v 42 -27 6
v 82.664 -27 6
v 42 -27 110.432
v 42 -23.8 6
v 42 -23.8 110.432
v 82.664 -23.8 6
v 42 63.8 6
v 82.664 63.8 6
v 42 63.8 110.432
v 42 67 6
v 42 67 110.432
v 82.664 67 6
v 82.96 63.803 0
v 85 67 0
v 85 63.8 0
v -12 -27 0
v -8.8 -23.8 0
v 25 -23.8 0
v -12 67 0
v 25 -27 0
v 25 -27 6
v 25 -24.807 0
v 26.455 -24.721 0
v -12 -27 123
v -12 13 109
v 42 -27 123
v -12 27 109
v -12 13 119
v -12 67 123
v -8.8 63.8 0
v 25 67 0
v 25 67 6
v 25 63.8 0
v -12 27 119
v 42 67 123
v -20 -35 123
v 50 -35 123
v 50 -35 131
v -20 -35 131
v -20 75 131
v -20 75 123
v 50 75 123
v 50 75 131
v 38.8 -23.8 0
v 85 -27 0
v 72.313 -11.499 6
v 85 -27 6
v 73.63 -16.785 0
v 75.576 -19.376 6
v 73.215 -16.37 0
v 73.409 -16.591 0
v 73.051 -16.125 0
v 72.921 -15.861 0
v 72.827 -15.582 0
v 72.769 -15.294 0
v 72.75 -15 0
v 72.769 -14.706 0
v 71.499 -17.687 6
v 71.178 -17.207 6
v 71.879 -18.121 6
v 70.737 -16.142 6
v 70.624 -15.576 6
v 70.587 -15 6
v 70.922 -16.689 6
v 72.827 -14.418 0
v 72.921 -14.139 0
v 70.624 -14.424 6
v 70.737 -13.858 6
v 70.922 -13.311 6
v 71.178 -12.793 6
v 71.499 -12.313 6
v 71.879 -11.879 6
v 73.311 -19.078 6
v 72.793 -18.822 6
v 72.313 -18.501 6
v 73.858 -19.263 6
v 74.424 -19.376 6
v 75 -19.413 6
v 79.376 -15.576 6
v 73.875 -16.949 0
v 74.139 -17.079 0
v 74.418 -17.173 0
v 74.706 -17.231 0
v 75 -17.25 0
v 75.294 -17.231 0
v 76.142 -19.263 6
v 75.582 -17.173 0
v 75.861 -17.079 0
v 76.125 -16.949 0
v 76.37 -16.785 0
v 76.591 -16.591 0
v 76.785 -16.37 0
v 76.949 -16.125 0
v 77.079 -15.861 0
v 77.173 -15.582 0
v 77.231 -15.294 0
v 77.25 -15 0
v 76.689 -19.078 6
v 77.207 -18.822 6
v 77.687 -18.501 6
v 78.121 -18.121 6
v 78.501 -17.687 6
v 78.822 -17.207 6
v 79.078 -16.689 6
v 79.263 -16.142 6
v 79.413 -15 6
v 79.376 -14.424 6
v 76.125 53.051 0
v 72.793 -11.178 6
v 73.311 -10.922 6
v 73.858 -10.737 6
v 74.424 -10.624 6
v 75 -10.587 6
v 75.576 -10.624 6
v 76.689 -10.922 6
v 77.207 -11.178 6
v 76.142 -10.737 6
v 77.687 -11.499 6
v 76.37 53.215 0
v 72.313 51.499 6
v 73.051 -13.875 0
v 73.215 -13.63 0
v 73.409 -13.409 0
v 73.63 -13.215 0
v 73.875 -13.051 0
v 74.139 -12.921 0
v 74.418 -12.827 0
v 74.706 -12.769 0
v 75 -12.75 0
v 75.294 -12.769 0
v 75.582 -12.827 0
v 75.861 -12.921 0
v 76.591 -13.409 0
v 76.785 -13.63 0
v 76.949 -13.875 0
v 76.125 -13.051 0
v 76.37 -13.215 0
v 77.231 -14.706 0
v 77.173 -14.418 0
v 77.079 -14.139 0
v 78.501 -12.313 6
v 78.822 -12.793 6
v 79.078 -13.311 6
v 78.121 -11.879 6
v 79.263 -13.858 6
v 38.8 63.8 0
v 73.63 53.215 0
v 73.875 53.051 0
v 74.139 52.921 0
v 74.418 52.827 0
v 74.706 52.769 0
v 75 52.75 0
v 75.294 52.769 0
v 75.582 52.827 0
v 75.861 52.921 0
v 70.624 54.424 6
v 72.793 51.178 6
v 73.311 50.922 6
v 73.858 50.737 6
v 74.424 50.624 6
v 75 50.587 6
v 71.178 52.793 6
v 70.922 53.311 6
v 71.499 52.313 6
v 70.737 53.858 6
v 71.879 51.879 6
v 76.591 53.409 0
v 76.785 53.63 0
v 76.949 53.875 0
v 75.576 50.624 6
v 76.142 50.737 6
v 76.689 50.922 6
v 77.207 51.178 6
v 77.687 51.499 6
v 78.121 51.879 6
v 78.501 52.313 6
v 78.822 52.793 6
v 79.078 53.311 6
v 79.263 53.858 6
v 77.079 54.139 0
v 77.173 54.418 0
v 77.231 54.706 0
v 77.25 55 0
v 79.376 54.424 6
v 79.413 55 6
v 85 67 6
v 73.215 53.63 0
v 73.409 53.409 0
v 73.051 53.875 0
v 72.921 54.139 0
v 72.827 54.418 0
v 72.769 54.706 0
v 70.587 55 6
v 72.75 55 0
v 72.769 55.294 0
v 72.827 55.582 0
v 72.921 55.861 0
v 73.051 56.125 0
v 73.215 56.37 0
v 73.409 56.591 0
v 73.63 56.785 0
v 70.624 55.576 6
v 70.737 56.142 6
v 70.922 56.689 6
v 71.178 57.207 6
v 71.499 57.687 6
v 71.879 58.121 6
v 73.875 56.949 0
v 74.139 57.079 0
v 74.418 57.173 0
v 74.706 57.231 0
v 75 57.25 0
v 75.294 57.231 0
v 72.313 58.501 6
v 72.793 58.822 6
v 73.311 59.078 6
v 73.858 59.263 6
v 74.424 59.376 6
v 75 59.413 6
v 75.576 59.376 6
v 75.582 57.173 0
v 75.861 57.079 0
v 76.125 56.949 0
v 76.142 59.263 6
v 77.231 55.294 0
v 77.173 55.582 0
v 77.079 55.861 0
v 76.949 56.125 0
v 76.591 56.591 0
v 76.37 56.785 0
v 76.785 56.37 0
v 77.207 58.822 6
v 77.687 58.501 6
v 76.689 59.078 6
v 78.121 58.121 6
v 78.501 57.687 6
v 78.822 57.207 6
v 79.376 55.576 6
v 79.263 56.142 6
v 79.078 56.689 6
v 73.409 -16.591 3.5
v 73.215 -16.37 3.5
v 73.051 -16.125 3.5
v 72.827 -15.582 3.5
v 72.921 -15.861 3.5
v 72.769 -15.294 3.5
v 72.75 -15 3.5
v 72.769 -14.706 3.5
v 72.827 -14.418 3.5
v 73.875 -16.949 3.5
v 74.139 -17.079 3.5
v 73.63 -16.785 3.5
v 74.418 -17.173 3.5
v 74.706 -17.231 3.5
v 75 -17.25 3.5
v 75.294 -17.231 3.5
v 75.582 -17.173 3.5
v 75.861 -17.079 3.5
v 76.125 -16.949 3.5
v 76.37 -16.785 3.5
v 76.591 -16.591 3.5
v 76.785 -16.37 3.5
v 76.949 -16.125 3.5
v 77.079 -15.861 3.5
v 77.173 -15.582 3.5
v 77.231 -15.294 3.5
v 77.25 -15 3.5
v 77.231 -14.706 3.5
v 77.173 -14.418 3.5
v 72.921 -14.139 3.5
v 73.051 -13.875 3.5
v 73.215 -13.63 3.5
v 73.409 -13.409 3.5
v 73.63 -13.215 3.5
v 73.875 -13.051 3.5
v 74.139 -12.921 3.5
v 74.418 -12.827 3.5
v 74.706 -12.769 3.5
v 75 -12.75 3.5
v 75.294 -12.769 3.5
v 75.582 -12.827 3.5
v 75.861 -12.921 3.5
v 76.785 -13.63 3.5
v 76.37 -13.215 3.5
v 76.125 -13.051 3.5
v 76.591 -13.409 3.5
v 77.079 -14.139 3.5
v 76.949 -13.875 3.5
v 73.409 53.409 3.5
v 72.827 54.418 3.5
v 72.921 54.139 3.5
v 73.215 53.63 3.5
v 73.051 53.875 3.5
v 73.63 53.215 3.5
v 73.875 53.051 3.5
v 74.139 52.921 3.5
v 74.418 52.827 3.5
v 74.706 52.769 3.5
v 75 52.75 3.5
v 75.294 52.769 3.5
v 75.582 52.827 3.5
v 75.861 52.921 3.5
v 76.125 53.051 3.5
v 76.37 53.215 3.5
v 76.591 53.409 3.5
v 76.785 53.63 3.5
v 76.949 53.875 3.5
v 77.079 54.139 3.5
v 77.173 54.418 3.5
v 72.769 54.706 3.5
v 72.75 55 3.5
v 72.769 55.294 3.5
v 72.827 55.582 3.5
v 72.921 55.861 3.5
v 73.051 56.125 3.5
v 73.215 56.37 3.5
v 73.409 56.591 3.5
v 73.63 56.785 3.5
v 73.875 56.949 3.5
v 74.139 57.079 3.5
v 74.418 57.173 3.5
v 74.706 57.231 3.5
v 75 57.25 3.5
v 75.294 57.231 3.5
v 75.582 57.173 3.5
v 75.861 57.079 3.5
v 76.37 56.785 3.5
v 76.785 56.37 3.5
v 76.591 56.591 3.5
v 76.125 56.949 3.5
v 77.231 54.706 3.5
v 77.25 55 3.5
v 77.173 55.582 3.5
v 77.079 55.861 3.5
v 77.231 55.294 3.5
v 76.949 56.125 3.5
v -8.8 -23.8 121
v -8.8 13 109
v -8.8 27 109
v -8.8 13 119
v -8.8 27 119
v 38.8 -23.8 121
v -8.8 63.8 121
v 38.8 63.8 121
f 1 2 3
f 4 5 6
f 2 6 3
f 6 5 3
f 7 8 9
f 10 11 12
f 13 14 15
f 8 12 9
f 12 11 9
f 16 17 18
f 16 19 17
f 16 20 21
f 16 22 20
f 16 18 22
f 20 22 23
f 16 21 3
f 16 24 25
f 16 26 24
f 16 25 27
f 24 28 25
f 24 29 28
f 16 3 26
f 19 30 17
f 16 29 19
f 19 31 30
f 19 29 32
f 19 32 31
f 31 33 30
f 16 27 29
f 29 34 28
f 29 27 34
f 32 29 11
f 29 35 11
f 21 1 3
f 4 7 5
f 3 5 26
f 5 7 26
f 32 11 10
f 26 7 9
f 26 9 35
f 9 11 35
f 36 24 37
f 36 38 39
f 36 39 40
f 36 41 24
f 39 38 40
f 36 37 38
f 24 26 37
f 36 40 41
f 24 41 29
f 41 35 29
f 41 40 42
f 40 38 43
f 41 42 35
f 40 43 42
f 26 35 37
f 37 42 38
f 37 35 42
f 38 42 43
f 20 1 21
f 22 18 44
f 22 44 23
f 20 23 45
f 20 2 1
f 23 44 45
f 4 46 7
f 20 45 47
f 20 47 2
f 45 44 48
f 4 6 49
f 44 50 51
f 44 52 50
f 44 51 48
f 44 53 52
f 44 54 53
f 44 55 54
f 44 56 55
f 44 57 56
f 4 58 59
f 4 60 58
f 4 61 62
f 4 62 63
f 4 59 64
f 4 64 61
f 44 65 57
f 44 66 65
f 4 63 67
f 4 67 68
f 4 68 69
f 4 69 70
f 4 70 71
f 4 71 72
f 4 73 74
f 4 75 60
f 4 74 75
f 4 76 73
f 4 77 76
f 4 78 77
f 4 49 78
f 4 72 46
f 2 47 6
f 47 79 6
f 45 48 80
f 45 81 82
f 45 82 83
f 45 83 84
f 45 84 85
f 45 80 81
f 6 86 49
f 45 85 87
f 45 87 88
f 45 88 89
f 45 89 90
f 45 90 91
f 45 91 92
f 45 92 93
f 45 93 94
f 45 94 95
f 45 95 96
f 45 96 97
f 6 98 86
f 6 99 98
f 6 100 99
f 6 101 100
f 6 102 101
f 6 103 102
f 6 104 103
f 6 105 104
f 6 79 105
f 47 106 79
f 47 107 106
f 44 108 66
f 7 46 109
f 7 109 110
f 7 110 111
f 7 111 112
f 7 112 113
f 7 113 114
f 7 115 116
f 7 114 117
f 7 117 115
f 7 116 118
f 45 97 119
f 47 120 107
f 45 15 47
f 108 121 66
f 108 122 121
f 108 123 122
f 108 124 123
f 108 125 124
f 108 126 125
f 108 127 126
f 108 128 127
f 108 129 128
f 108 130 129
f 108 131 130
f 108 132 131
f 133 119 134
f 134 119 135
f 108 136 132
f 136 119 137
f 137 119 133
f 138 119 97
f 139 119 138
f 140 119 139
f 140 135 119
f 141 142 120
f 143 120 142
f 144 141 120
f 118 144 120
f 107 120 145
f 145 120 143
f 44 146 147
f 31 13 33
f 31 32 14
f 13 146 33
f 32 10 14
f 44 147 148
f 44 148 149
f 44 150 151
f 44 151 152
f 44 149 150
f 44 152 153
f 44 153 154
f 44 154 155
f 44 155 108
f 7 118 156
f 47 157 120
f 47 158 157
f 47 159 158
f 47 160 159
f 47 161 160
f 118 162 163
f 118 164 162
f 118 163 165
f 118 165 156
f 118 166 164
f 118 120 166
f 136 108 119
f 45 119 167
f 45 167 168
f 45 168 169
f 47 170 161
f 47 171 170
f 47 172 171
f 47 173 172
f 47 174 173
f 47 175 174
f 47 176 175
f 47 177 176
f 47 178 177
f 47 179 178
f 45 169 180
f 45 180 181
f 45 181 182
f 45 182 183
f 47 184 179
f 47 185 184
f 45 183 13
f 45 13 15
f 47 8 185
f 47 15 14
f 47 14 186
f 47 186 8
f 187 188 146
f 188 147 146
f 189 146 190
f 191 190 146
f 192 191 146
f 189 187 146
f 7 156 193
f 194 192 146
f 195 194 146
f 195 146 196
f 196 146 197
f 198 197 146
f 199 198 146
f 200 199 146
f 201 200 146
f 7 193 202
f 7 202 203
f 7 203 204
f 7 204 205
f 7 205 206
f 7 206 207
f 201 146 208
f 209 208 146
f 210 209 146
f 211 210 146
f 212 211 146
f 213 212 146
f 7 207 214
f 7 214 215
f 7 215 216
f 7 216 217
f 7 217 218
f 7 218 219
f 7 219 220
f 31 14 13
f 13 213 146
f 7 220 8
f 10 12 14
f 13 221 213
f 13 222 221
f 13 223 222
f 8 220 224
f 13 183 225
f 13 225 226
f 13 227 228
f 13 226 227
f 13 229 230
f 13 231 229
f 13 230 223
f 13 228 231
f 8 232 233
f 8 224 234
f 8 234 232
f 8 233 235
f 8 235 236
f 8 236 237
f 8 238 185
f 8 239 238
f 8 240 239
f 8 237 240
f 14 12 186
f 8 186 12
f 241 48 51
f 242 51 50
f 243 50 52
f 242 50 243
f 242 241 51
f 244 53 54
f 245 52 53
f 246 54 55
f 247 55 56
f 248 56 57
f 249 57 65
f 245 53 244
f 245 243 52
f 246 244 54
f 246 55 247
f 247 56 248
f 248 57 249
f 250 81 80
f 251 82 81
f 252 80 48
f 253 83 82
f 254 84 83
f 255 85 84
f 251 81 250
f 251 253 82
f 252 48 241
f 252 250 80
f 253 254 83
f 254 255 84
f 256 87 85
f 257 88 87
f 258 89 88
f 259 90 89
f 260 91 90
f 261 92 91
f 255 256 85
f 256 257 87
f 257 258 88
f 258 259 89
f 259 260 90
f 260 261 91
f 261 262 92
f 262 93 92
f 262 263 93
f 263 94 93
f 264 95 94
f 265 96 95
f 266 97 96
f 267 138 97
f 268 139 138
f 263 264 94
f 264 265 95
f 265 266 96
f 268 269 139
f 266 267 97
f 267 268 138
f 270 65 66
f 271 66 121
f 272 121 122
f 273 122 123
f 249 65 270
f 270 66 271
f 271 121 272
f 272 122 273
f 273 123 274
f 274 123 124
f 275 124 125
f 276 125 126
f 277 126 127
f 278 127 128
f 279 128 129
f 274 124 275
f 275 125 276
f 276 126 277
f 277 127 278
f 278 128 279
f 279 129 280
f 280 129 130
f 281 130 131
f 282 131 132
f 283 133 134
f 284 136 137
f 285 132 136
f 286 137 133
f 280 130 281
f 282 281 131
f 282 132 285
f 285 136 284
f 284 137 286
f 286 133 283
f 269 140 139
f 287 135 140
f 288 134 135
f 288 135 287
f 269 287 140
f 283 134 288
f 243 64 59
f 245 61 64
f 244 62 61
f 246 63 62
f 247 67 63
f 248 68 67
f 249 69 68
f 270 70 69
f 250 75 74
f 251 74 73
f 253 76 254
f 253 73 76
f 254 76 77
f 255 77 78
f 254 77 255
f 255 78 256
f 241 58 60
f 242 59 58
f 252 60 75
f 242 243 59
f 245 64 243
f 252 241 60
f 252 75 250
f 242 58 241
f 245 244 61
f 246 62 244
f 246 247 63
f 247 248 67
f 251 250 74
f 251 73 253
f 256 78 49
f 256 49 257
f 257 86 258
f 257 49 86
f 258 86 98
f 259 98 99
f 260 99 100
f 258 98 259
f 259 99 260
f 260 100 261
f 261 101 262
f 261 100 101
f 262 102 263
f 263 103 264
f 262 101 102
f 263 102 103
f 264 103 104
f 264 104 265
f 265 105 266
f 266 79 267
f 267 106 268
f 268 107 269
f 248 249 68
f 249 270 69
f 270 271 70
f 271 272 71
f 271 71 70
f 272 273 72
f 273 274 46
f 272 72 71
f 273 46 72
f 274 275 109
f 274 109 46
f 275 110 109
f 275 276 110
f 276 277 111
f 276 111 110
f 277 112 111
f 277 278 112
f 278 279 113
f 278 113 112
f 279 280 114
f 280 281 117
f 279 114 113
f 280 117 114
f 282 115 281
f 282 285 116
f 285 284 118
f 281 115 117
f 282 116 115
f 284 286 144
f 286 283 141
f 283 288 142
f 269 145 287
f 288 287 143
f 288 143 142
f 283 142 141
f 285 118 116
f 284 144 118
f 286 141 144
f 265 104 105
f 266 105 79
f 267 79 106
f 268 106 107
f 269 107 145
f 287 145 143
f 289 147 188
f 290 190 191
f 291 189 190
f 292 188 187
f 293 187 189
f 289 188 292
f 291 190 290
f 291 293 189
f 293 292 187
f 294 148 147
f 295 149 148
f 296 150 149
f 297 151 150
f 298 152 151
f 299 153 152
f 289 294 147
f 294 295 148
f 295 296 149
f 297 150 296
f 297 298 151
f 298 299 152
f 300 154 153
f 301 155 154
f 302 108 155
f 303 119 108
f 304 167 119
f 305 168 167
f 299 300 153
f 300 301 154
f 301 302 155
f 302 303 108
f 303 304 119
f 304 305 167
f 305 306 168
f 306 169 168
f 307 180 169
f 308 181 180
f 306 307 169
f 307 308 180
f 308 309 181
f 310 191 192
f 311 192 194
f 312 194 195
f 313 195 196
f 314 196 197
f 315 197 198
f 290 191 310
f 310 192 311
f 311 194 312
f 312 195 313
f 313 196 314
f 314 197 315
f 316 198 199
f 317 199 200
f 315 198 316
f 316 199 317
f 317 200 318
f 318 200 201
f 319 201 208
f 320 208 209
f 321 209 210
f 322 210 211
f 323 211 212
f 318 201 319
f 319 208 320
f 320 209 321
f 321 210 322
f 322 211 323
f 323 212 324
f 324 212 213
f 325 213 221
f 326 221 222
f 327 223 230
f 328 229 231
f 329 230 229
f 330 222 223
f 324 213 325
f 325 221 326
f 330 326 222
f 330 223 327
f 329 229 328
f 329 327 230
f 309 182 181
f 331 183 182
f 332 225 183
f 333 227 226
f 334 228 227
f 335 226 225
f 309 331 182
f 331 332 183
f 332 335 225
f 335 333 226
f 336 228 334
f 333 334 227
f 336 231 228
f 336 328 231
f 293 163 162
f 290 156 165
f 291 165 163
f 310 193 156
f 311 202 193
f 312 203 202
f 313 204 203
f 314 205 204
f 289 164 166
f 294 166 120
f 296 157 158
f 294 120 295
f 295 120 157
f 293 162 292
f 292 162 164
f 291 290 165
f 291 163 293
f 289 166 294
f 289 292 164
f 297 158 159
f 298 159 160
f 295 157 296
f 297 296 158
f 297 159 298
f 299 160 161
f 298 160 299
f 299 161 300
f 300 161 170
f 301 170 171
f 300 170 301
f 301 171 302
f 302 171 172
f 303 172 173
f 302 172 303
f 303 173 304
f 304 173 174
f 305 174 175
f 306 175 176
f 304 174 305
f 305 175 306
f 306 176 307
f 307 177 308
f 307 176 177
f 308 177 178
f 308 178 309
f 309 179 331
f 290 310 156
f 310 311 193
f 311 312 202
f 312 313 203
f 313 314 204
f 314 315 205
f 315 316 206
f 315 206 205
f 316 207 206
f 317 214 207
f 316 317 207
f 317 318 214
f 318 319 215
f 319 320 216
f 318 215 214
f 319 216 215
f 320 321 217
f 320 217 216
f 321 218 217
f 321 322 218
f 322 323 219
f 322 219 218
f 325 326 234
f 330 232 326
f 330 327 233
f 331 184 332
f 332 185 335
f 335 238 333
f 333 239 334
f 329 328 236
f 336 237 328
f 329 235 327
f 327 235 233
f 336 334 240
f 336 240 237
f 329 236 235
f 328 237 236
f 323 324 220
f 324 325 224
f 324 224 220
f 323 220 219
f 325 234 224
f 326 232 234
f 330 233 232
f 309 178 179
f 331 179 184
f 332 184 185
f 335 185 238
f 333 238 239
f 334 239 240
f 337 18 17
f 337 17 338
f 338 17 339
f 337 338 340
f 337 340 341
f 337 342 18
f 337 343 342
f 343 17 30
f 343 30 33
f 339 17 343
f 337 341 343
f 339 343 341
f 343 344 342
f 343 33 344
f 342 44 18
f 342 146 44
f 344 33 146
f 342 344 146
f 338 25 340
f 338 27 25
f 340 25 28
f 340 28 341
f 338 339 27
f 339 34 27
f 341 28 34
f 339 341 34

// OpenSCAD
// file: pedestal_params.scad
// Generated by fab/gen_fab.py from models/so101/build_so101.py - do not edit.
PED_LO = [-20.000, -35.000, 0.000];
PED_HI = [50.000, 75.000, 131.000];
CART_EDGE = 25.000;
FOOT_X = 85.000;
// main file
// SO-101 pedestal for the robot cart: one PETG print on the Bambu X1.
//
// Matches the sim model (models/so101_stand, generated by
// models/so101/build_so101.py): origin on the cart top under the arm's pan
// axis, x towards the cart's middle, z up. The block overhangs the cart's
// front edge (x = CART_EDGE) by 45 mm, as a bracket over the Carvera's front
// lip; the foot reaches back onto the cart and is screwed down there.
// Numbers come from pedestal_params.scad (fab/gen_fab.py). Units: mm.
//
// The SO-101's base clamps onto the top slab with the two table clamps from
// the arm kit: the slab overhangs the walls so the clamps have a lip to grip.

include <pedestal_params.scad>

part = "pedestal";
$fn = 48;

WALL = 3.2;            // 8 perimeters of 0.4 mm
SLAB = 8;              // top slab (clamp lip)
LIP = 8;               // slab overhang past the walls, for the clamp jaws
FOOT_T = 6;
M4_WOOD = 4.5;

module pedestal() {
  x0 = PED_LO[0]; y0 = PED_LO[1]; x1 = PED_HI[0]; y1 = PED_HI[1]; h = PED_HI[2];
  difference() {
    union() {
      // walls, inset by LIP under the slab
      translate([x0 + LIP, y0 + LIP, 0]) cube([x1 - x0 - 2 * LIP, y1 - y0 - 2 * LIP, h - SLAB]);
      // top slab: full footprint of the sim block
      translate([x0, y0, h - SLAB]) cube([x1 - x0, y1 - y0, SLAB]);
      // foot onto the cart, with two gussets
      translate([CART_EDGE, y0 + LIP, 0]) cube([FOOT_X - CART_EDGE, y1 - y0 - 2 * LIP, FOOT_T]);
      for (y = [y0 + LIP, y1 - LIP - WALL])
        translate([0, y + WALL, 0]) rotate([90, 0, 0]) linear_extrude(WALL)
          polygon([[x1 - LIP - 1, 0], [FOOT_X, 0], [x1 - LIP - 1, h - SLAB - 10]]);
    }
    // hollow, open at the bottom; ribbed by the slab and the walls
    translate([x0 + LIP + WALL, y0 + LIP + WALL, -1])
      cube([x1 - x0 - 2 * LIP - 2 * WALL, y1 - y0 - 2 * LIP - 2 * WALL, h - SLAB + 1 - 2]);
    // screws into the cart top: two in the foot, one inside each corner on the cart
    for (y = [y0 + LIP + 12, y1 - LIP - 12]) {
      translate([FOOT_X - 10, y, -1]) cylinder(d = M4_WOOD, h = FOOT_T + 2);
      translate([FOOT_X - 10, y, FOOT_T - 2.5]) cylinder(d1 = M4_WOOD, d2 = 9, h = 2.6);
    }
    // cable slot under the slab for the arm's bus and power; the block is
    // open at the bottom, so they run down through a hole in the cart top
    translate([x0 + LIP - 1, (y0 + y1) / 2 - 7, h - SLAB - 14]) cube([WALL + 2, 14, 10]);
  }
}

pedestal();
